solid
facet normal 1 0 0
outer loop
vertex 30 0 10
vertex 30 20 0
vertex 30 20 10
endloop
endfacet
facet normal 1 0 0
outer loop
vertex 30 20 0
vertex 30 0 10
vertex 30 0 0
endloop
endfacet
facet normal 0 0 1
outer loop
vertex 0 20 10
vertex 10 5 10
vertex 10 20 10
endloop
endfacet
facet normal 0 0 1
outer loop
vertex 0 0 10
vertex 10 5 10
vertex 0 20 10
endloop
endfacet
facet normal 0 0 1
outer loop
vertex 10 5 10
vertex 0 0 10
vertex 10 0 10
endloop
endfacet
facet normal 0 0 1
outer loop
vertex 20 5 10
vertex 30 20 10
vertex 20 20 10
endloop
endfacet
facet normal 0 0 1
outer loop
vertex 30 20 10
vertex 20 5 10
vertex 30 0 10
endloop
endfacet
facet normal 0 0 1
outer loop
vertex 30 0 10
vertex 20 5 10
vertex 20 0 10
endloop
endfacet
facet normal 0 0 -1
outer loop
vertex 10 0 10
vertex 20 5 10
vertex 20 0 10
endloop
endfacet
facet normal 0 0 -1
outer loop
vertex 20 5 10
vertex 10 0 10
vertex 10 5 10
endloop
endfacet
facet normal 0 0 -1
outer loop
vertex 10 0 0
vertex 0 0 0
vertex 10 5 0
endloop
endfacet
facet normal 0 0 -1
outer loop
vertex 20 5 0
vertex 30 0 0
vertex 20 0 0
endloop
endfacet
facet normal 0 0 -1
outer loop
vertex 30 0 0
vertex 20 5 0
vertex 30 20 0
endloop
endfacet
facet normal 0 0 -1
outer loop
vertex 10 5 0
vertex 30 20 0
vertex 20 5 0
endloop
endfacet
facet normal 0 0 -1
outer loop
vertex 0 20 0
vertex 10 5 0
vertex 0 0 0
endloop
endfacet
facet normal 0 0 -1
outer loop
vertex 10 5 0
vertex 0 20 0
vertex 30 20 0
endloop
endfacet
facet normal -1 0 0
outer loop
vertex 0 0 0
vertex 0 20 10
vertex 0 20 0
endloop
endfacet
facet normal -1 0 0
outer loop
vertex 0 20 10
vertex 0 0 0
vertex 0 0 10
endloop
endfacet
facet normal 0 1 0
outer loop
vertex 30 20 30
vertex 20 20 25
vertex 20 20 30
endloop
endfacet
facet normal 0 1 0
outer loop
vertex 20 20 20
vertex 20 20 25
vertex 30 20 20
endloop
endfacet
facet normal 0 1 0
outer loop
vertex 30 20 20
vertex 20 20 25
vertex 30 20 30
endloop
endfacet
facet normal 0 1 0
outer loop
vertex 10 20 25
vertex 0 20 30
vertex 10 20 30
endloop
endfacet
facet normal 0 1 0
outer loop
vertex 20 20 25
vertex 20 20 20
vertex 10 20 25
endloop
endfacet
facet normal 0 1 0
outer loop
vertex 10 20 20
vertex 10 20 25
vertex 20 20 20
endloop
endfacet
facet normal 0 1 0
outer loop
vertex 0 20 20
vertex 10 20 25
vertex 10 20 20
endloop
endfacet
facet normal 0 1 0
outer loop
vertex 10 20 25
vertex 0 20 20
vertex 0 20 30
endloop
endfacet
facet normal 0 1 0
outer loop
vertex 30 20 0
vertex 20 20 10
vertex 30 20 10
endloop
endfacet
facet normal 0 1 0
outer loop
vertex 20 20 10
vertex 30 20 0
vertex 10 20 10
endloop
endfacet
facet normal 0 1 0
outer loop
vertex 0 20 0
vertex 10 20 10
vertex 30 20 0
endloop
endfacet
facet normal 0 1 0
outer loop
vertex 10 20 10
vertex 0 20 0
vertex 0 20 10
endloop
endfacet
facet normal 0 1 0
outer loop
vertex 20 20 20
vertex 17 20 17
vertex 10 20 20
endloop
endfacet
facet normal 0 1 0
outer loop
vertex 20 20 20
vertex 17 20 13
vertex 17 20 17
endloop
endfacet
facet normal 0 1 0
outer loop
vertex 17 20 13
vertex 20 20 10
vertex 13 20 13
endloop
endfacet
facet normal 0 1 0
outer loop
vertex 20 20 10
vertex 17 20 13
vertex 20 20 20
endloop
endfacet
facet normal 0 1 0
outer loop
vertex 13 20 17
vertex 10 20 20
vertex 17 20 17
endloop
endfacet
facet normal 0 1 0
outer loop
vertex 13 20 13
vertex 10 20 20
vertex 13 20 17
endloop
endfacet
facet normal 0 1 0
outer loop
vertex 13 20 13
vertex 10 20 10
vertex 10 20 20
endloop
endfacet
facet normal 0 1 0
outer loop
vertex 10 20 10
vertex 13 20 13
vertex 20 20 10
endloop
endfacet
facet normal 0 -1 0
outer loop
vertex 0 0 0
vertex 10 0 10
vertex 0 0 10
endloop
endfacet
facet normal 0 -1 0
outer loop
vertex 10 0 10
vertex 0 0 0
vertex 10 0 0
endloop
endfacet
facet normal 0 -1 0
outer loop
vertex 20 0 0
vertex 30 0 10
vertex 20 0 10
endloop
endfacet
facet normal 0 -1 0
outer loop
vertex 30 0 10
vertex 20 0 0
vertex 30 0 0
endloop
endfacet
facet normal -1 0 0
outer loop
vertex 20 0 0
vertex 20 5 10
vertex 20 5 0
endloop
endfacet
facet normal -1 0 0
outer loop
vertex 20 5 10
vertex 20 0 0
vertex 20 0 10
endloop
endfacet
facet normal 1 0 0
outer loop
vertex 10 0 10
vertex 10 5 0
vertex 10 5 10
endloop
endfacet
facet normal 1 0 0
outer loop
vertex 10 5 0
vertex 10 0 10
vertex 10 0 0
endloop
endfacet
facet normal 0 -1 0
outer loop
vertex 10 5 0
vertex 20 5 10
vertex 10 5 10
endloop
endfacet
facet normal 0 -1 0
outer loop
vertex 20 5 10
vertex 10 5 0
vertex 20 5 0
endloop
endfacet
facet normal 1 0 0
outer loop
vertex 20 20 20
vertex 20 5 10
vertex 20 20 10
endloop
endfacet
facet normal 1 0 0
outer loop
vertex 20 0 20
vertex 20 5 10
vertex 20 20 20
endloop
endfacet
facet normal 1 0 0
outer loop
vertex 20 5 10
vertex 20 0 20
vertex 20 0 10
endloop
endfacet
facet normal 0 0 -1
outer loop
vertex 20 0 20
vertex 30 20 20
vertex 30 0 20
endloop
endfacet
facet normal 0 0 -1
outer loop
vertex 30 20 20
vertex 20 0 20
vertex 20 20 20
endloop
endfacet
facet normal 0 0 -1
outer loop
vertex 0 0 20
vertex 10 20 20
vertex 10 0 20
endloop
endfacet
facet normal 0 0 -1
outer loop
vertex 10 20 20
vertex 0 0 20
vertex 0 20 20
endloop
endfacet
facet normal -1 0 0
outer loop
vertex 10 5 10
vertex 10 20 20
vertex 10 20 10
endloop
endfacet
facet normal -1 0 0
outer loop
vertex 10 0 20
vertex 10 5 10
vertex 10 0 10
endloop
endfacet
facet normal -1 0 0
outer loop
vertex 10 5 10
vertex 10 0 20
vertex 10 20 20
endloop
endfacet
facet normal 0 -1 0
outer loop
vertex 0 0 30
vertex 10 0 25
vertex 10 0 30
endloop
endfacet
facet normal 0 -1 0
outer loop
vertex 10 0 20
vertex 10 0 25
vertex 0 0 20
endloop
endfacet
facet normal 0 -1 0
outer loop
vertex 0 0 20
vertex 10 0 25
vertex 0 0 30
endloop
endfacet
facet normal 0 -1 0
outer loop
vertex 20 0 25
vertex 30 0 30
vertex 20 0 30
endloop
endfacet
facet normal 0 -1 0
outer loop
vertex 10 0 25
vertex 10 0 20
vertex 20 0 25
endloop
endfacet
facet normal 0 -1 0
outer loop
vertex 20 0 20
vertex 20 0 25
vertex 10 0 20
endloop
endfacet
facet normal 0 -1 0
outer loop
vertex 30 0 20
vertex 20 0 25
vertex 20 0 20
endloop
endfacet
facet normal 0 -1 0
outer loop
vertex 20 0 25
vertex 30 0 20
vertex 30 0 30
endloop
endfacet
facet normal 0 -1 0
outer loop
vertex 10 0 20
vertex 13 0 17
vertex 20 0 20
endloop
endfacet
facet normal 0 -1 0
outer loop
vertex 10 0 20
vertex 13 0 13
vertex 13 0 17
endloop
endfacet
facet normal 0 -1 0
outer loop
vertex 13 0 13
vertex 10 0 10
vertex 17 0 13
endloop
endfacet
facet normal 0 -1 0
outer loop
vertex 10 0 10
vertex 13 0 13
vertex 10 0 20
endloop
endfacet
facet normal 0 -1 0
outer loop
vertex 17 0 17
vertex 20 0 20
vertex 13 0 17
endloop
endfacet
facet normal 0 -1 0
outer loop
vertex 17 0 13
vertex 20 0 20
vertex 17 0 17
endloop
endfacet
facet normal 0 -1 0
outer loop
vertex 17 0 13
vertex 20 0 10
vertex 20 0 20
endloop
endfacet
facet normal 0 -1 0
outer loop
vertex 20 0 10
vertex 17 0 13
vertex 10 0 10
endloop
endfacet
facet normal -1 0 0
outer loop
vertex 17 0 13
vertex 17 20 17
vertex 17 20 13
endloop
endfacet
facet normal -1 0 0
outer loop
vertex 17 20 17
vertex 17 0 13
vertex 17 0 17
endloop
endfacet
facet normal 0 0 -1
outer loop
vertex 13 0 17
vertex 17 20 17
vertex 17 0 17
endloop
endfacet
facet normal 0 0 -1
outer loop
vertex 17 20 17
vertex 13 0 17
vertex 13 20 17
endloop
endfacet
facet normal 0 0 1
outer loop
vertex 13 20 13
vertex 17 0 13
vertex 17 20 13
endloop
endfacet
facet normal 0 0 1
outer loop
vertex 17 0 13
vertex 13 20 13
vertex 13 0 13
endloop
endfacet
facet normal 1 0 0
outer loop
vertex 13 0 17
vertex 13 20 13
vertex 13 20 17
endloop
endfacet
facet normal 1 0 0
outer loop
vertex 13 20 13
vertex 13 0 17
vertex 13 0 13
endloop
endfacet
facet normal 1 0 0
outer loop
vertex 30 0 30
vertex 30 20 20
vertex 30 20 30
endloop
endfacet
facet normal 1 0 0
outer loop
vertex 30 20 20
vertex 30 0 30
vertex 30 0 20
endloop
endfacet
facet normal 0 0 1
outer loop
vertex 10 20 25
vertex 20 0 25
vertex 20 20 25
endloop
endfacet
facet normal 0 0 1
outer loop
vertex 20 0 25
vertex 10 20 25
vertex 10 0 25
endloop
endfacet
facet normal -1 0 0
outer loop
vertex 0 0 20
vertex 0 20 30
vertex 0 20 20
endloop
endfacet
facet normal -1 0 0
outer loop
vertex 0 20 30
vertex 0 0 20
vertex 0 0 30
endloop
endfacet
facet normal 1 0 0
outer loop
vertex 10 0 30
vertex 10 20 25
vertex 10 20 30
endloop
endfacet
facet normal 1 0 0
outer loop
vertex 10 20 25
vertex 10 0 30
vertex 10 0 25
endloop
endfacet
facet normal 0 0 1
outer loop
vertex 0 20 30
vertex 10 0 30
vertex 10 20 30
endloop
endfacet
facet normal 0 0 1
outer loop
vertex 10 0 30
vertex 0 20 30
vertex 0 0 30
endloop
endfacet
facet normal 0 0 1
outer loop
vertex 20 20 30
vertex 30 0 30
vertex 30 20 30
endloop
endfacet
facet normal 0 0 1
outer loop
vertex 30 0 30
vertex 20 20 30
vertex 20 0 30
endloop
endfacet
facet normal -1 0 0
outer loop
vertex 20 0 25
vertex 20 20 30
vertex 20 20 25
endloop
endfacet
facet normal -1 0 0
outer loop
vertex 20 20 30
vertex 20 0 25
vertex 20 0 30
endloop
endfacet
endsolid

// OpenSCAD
// Base block
module base_block() {
    difference() {
        cube([30, 20, 10], center = false); // Main block
        translate([10, 0, 0])
            cube([10, 5, 10], center = false); // Vertical slot
    }
}

// Forked arm
module forked_arm() {
    union() {
        // Base of the U-shape
        cube([30, 20, 5], center = false);
        // Left prong
        translate([0, 0, 5])
            cube([10, 20, 5], center = false);
        // Right prong
        translate([20, 0, 5])
            cube([10, 20, 5], center = false);
    }
}

// Connector slot
module connector_slot() {
    difference() {
        cube([10, 20, 10], center = false); // Main block
        translate([3, 0, 3])
            cube([4, 20, 4], center = false); // Slot in the middle
    }
}

// Assembly
module assembly() {
    // Layer 3: Base block
    base_block();

    // Layer 2: Connector slot
    translate([10, 0, 10])
        connector_slot();

    // Layer 1: Forked arm
    translate([0, 0, 20])
        forked_arm();
}

// Render the assembly
assembly();
